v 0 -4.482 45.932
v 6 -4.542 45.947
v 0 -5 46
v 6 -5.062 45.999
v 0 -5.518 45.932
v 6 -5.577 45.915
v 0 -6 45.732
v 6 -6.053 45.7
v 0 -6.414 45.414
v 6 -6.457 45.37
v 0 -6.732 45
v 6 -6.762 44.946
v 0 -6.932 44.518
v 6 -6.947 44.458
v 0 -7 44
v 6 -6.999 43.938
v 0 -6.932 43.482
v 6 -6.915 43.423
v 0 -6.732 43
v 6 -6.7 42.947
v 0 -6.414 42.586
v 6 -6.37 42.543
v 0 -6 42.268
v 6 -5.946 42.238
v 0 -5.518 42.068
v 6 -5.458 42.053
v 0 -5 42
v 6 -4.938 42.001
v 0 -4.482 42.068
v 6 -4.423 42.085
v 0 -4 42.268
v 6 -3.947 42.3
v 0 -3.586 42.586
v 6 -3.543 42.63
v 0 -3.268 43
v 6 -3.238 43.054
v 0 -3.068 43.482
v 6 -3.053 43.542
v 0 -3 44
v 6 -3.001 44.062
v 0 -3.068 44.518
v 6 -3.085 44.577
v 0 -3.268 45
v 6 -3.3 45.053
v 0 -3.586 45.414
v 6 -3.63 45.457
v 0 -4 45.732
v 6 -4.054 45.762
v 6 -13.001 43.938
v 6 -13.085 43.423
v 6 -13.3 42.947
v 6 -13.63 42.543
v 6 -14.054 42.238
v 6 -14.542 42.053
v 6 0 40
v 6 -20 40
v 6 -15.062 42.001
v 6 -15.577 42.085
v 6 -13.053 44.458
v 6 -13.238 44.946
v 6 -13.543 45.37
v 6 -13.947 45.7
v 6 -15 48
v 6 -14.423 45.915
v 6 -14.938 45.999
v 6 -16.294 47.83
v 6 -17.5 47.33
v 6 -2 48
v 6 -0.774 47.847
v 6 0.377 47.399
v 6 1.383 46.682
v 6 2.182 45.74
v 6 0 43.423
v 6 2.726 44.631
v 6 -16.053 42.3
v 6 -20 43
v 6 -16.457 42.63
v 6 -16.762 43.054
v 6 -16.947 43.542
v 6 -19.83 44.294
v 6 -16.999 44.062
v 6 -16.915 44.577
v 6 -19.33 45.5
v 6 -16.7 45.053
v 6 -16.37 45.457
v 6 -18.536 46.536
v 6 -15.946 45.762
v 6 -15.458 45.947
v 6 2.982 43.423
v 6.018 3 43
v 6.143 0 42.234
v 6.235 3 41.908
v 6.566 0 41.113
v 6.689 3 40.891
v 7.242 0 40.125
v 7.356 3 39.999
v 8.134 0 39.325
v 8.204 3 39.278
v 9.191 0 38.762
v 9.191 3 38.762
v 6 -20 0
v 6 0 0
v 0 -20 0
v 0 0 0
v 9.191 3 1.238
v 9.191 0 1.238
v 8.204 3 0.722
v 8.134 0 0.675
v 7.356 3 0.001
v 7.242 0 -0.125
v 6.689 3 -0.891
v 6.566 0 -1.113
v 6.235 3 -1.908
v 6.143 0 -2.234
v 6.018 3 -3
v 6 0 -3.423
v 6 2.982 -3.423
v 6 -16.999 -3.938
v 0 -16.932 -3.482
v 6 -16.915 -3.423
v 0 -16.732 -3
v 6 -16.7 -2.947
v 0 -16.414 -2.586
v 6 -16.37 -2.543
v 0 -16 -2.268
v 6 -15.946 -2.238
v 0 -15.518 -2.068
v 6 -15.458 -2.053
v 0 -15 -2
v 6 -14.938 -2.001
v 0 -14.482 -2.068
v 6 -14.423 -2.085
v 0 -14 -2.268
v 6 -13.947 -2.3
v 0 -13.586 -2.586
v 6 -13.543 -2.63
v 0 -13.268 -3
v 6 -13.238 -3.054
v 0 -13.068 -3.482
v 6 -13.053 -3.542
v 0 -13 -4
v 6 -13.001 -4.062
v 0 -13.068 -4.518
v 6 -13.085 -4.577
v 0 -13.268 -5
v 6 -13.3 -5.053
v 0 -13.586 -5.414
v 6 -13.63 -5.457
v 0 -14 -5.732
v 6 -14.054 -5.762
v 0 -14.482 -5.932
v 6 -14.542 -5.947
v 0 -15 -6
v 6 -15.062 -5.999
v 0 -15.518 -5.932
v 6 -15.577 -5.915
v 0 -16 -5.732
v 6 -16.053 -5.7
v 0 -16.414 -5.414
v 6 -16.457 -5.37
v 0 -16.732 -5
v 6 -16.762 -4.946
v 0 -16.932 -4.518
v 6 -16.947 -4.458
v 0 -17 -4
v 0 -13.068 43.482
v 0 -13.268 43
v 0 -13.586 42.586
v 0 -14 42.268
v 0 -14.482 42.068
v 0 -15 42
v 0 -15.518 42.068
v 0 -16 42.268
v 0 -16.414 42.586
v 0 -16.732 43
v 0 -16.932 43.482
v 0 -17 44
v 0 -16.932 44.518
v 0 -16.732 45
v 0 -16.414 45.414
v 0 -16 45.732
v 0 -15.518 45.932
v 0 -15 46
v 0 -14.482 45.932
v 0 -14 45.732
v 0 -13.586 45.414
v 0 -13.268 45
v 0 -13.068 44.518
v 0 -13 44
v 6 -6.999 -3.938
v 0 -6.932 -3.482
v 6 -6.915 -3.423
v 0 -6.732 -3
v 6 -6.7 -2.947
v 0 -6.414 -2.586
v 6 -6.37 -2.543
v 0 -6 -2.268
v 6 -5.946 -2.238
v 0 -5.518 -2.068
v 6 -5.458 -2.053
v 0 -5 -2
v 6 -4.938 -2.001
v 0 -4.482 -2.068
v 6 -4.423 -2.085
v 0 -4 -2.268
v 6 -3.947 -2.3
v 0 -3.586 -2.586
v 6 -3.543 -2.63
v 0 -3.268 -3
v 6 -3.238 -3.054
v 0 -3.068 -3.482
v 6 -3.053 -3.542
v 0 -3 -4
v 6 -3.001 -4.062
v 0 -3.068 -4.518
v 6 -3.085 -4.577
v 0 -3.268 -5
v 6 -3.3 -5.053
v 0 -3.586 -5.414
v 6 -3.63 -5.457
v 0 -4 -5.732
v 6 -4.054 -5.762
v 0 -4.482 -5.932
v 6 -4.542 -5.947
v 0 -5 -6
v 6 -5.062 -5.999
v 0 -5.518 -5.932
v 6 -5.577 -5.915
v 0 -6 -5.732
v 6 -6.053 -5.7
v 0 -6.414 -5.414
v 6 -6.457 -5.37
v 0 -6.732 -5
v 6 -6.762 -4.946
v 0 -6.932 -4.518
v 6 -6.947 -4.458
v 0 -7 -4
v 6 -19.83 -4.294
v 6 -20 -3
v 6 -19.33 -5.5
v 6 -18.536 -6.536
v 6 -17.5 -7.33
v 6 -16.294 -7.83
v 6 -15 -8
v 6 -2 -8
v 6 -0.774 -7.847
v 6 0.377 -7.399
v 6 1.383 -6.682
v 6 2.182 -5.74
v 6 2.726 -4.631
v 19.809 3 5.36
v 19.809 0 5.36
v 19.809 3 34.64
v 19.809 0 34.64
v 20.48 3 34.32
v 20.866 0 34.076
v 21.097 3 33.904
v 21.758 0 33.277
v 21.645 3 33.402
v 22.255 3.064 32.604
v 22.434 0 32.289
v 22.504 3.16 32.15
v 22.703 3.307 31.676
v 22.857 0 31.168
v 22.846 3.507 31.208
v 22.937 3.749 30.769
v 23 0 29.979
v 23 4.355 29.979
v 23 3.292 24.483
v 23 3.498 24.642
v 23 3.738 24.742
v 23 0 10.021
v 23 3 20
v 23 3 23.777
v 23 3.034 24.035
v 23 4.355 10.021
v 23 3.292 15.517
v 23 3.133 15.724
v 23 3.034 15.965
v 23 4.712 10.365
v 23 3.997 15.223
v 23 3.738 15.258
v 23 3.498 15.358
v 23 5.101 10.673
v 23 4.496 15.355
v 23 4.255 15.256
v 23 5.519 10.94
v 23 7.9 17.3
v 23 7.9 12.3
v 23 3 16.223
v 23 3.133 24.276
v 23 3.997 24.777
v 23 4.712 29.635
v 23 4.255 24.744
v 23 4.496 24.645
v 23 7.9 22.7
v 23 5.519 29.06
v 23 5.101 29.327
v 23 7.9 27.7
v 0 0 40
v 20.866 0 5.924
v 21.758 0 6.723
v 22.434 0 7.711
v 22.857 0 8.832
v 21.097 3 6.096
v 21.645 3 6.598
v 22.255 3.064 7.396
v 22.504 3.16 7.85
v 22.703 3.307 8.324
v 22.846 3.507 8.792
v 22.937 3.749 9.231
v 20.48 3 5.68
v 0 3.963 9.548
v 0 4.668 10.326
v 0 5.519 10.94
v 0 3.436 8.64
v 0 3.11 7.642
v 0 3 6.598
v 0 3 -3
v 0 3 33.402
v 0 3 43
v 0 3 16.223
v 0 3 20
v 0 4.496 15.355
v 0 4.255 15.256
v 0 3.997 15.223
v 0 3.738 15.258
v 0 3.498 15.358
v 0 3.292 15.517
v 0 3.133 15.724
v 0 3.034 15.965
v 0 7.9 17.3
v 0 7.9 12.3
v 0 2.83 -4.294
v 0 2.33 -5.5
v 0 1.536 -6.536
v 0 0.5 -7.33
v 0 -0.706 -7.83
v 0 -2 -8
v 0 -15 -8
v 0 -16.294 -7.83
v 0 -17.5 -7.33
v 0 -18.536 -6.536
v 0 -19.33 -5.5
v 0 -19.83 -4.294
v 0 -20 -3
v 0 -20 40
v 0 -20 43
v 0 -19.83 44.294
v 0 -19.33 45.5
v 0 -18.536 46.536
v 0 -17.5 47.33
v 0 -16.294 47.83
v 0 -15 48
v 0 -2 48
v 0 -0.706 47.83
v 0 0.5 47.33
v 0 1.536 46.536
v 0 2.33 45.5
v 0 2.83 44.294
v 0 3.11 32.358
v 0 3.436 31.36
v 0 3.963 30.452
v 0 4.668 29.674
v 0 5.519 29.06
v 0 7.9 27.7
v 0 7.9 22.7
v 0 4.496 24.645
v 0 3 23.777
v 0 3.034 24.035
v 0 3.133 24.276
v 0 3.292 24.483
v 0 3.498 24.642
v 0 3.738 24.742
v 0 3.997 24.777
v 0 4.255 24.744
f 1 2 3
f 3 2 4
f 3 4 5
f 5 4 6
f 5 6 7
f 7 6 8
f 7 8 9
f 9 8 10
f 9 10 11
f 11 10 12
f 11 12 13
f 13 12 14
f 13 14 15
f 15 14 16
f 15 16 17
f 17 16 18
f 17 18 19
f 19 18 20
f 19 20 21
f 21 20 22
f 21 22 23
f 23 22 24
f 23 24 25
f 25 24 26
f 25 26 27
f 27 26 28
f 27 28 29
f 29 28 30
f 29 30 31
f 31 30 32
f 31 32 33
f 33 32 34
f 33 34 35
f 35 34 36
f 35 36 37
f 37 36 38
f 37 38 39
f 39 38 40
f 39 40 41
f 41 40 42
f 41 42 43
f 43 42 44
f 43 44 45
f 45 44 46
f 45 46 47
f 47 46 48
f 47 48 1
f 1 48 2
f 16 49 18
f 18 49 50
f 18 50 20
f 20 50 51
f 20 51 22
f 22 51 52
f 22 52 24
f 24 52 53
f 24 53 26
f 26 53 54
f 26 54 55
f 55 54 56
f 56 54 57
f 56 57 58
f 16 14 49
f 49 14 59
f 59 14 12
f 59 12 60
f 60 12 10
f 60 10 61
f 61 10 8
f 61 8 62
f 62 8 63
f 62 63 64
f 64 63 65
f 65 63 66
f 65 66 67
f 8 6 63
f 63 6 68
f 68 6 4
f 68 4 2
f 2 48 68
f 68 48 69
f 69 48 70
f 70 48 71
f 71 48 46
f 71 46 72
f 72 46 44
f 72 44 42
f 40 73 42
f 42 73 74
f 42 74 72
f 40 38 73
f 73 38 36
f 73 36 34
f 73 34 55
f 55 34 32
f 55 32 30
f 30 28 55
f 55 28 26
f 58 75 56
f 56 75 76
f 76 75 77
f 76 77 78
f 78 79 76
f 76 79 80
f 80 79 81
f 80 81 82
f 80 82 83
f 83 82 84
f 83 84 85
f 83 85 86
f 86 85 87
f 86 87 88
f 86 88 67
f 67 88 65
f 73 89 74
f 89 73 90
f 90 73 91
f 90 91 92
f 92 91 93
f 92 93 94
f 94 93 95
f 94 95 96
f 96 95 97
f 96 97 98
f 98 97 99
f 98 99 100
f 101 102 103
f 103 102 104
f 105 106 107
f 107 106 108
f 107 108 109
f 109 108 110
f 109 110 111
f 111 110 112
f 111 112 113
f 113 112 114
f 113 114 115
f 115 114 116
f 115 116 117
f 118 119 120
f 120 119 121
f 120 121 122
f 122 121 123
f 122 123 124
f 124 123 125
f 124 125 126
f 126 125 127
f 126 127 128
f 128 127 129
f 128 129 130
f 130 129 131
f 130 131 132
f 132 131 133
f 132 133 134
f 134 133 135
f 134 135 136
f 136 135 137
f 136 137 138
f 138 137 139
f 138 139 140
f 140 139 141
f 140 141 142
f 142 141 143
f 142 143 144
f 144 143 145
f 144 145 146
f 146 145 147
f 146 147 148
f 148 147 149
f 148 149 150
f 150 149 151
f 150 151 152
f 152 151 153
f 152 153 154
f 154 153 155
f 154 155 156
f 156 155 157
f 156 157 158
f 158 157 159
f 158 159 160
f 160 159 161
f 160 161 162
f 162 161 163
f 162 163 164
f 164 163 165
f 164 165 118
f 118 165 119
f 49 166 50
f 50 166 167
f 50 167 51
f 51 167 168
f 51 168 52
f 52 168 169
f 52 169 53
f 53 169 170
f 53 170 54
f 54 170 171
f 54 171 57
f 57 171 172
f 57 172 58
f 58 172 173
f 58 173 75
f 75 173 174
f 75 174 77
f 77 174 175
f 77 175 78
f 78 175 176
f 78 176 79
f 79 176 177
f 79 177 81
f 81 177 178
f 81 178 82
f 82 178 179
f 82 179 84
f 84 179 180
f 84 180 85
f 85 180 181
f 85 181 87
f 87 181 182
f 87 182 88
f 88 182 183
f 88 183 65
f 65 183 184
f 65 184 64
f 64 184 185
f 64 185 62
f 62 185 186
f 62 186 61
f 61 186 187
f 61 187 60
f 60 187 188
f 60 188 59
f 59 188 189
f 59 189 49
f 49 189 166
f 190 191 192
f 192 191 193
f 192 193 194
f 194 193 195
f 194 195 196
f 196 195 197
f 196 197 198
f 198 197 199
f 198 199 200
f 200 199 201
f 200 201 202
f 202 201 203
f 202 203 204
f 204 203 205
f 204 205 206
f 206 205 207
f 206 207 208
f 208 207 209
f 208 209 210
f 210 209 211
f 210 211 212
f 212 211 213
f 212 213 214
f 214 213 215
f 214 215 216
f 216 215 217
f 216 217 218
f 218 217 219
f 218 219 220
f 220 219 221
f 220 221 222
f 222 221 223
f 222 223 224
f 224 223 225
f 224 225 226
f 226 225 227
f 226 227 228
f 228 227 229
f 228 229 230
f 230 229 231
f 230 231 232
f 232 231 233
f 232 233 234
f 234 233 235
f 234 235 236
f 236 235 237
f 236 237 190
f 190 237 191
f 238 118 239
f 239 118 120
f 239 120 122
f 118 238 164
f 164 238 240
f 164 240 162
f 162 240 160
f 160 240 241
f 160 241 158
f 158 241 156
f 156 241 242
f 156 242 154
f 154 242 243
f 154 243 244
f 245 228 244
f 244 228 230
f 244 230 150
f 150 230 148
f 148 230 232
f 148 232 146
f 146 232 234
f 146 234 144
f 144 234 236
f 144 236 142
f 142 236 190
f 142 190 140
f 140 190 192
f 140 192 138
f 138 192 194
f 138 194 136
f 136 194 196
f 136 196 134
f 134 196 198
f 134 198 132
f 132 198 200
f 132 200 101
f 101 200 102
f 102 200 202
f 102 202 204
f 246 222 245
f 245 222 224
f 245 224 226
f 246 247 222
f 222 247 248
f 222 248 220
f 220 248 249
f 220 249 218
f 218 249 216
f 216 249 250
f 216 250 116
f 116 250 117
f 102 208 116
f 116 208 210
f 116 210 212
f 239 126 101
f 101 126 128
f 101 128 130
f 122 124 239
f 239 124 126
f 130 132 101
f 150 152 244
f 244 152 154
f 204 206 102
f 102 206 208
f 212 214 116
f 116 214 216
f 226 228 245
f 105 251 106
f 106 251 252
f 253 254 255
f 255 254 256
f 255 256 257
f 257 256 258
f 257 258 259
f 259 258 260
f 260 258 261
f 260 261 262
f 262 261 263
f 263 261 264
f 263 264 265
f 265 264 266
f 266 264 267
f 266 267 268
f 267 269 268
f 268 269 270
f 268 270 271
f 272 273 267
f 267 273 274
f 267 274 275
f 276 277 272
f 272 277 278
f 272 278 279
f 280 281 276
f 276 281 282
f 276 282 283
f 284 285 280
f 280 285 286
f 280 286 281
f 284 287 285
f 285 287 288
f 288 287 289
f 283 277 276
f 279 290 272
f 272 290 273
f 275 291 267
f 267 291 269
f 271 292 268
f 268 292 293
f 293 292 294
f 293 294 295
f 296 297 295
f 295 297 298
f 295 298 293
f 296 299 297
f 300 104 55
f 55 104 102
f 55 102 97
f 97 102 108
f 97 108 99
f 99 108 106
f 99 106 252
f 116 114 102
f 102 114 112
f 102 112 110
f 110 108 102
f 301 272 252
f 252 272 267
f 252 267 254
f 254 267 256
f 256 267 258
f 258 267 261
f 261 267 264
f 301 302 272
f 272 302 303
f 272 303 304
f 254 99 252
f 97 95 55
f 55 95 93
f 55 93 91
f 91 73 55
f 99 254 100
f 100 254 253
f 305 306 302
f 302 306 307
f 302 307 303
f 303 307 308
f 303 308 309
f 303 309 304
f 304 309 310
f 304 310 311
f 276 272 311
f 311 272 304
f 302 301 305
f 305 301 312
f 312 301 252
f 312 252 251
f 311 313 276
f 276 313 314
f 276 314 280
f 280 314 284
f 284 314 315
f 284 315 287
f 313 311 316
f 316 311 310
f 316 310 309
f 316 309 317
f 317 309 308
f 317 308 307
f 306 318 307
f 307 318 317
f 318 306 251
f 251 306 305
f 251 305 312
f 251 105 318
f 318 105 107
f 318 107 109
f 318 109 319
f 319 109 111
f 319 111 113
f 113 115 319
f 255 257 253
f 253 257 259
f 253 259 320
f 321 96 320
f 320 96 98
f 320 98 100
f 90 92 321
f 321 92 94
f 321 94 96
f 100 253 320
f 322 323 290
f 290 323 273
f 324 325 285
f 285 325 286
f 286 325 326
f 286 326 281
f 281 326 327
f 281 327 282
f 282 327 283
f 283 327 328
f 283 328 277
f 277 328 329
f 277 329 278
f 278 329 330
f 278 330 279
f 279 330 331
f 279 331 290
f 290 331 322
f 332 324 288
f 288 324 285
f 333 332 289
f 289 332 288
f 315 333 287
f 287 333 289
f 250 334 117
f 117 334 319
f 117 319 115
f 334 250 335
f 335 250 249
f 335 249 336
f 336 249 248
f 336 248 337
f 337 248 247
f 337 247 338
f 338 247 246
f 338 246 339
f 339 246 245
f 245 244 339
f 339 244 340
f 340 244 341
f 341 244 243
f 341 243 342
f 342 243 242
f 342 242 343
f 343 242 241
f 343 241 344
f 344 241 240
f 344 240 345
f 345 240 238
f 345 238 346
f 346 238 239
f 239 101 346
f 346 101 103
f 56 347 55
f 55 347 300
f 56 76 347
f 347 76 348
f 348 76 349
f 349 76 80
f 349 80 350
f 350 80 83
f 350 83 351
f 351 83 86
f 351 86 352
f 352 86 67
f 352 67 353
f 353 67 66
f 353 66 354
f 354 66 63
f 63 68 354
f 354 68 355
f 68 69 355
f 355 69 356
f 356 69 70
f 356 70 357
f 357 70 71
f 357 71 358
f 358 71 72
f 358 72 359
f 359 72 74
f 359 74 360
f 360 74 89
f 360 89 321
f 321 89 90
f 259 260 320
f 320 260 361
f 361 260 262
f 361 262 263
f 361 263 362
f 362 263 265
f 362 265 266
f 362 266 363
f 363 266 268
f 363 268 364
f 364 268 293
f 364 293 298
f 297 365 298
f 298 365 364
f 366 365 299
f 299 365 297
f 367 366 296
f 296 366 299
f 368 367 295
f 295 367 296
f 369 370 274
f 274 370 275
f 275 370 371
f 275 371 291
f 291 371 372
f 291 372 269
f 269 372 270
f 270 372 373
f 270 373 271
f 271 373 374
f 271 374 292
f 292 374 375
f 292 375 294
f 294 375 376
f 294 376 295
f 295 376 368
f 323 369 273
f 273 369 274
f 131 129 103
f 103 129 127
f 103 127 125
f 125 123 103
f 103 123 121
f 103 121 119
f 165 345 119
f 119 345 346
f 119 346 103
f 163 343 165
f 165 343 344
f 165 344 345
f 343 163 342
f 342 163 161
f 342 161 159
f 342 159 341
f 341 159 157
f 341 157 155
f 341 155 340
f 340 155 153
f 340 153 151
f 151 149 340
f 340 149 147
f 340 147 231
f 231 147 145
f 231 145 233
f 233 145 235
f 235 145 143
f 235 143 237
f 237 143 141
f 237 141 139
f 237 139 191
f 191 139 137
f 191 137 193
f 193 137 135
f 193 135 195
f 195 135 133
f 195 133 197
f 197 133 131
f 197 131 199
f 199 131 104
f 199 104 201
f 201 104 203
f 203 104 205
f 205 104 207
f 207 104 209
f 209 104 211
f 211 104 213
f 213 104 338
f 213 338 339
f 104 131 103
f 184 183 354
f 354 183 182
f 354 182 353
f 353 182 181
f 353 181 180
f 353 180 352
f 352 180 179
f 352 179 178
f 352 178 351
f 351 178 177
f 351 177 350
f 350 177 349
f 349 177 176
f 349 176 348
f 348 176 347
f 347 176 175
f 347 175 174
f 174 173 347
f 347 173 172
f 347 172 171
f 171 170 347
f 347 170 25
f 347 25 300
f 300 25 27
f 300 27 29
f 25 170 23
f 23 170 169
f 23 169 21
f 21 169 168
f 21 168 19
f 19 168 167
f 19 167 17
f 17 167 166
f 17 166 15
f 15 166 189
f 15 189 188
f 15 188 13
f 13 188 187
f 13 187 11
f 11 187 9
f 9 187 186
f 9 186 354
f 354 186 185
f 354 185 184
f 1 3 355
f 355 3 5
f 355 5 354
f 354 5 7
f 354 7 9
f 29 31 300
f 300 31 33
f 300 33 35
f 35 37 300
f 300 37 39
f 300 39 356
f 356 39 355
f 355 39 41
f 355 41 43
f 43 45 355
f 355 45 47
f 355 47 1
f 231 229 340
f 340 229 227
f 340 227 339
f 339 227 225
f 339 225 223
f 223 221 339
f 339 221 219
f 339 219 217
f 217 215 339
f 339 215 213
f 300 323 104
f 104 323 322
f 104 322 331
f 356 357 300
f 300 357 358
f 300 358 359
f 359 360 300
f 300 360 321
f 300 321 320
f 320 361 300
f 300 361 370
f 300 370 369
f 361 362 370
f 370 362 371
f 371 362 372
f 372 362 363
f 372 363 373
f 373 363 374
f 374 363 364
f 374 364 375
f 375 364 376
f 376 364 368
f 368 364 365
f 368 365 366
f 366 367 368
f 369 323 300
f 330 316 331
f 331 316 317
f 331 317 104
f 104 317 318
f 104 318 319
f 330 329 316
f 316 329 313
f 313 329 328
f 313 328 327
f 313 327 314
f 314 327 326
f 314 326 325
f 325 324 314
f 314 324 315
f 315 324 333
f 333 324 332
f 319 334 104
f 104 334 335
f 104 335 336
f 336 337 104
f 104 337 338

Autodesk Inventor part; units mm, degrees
ref_plane "YZ Plane" through (0, 0, 0) normal (1, 0, 0) x (0, 1, 0)
ref_plane "XZ Plane" through (0, 0, 0) normal (0, 1, 0) x (-1, 0, 0)
ref_plane "XY Plane" through (0, 0, 0) normal (0, 0, 1) x (1, 0, 0)
sketch "Sketch1" plane through (0, 0, 0) normal (1, 0, 0) x (0, 1, 0)
  line L0 (0, 0) -> (0, 40)
  line L1 (0, 40) -> (-20, 40)
  line L2 (-20, 40) -> (-20, 43)
  line L3 (-15, 48) -> (-2, 48)
  line L4 (-2, -8) -> (-15, -8)
  line L5 (-20, -3) -> (-20, 0)
  line L6 (-20, 0) -> (0, 0)
  line L7 (0, 20) -> (3, 20)
  line L8 (3, 20) -> (3, 25.5)
  line L9 (3, 23.7768) -> (3, 20)
  line L10 (3, 20) -> (3, 16.2232)
  line L11 (3, 20) -> (7.9, 20)
  line L12 (7.9, 20) -> (7.9, 22.7)
  line L13 (7.9, 22.7) -> (7.9, 20)
  line L14 (7.9, 20) -> (7.9, 17.3)
  line L15 (7.9, 20) -> (10.6, 20) construction
  line L16 (4.4961, 24.6451) -> (7.9, 22.7)
  line L17 (7.9, 17.3) -> (4.4961, 15.3549)
  line L18 (7.9, 17.3) -> (7.9, 12.3)
  line L19 (7.9, 12.3) -> (5.5193, 10.9396)
  line L20 (7.9, 22.7) -> (7.9, 27.7)
  line L21 (7.9, 27.7) -> (5.5193, 29.0604)
  line L22 (3, 43) -> (3, 33.4016)
  line L23 (3, 30.5) -> (3, 25.5)
  line L24 (3, 14.5) -> (3, 9.5)
  line L25 (3, 6.5984) -> (3, -3)
  arc A0 (3, 33.4016) -> (5.5193, 29.0604) centre (8, 33.4016) ccw
  arc A1 (5.5193, 10.9396) -> (3, 6.5984) centre (8, 6.5984) ccw
  arc A2 (-2, -8) -> (3, -3) centre (-2, -3) ccw
  arc A3 (3, 43) -> (-2, 48) centre (-2, 43) ccw
  arc A4 (-15, 48) -> (-20, 43) centre (-15, 43) ccw
  arc A5 (-20, -3) -> (-15, -8) centre (-15, -3) ccw
  arc A6 (3, 16.2232) -> (4.4961, 15.3549) centre (4, 16.2232) ccw
  arc A7 (4.4961, 24.6451) -> (3, 23.7768) centre (4, 23.7768) ccw
  point P0 (-20, 48)
  point P1 (3, 48)
  point P2 (3, -8)
  point P3 (-20, -8)
  point P4 (-20, -1.5)
  dimension "d0" = 40
  dimension "d1" = 20
  dimension "d2" = 8
  dimension "d3" = 23
  dimension "d5" = 56
  dimension "d6" = 23
  dimension "d7" = 5.5
  dimension "d8" = 5.5
  dimension "d9" = 4.9
  dimension "d10" = 2.7
  dimension "d11" = 2.7
  dimension "d13" = 5
  dimension "d14" = 5
  dimension "d15" = 17.5
  dimension "d16" = 17.5
  dimension "d17" = 5
  dimension "d18" = 5
  dimension "d19" = 5
  dimension "d20" = 5
  dimension "d45" = 1
extrude "Extrusion1" add sketch "Sketch1" along normal blind 23 contours L0 L7 L10 A6 L17 L18 L19 A1 L25 A2 L4 A5 L5 L6 | L0 L1 L2 A4 L3 A3 L22 A0 L21 L20 L16 A7 L8 L7
sketch "Sketch2" plane through (0, 0, 0) normal (0, -1, 0) x (1, 0, 0)
  line L0 (0, 48) -> (23, 48) projected
  line L1 (0, 48) -> (6, 48)
  line L2 (6, 48) -> (6, -8)
  line L3 (0, -8) -> (23, -8) projected
  line L4 (0, 6.5984) -> (23, 6.5984) projected
  line L5 (23, 34.6451) -> (23, 6.5984)
  line L6 (23, 6.5984) -> (6, 0)
  line L7 (0, 0) -> (23, 0) projected
  line L8 (23, 33.4016) -> (23, 43) projected
  line L9 (23, 33.4016) -> (6, 40)
  line L10 (0, 40) -> (23, 40) projected
  line L11 (6, 48) -> (23, 48)
  line L12 (23, 33.4016) -> (23, 29.0604) projected
  line L13 (23, 33.4016) -> (23, 48)
  line L14 (23, 6.5984) -> (23, -8)
  line L15 (23, 40) -> (23, 0) projected
  line L16 (6, -8) -> (23, -8)
  dimension "d23" = 6
extrude "Extrusion2" cut sketch "Sketch2" along normal blind 23 and the other way blind 11.5 contours L0 L13 L8 L10 L2 | L10 L8 L5 L9 | L7 L14 L3 L2 | L6 L14 L7
fillet "Fillet1" radius 5 4 edges at (23, 1.5, 6.5984) (23, 1.5, 33.4016) (6, 1.5, 40) (6, 1.5, 0)
sketch "Sketch3" plane through (0, 0, 0) normal (-1, 0, 0) x (0, 0, 1)
  line L0 (40, 0) -> (0, 0) projected
  line L1 (40, 0) -> (40, -5)
  line L2 (40, -20) -> (40, 0) projected
  line L3 (40, -5) -> (44, -5)
  line L4 (44, -5) -> (44, -15)
  line L5 (0, 0) -> (0, -5)
  line L6 (0, 0) -> (0, -20) projected
  line L7 (0, -5) -> (-4, -5)
  line L8 (-4, -5) -> (-4, -15)
  dimension "d29" = 5
  dimension "d30" = 4
  dimension "d31" = 10
  dimension "d32" = 5
  dimension "d33" = 4
  dimension "d34" = 10
hole "Hole1" at (0, -15, 44) at (0, -5, 44) at (0, -15, -4) at (0, -5, -4) direction (1, 0, 0) diameter 4 depth 15
sketch "Sketch4" plane through (6, -15, -8) normal (1, 0, 0) x (0, 0, -1)
  line L0 (-0.0094, 15) -> (-56.0094, 15)
  line L1 (-56.0094, 15) -> (-56.0094, -8.2095)
  line L2 (-56.0094, -8.2095) -> (-0.0094, -8.2095)
  line L3 (-0.0094, -8.2095) -> (-0.0094, 15)
  point P0 (-8, 15)
  dimension "d42" = 56
extrude "Extrusion3" cut sketch "Sketch4" along normal blind 23
properties part number "bigServoHolder2"
